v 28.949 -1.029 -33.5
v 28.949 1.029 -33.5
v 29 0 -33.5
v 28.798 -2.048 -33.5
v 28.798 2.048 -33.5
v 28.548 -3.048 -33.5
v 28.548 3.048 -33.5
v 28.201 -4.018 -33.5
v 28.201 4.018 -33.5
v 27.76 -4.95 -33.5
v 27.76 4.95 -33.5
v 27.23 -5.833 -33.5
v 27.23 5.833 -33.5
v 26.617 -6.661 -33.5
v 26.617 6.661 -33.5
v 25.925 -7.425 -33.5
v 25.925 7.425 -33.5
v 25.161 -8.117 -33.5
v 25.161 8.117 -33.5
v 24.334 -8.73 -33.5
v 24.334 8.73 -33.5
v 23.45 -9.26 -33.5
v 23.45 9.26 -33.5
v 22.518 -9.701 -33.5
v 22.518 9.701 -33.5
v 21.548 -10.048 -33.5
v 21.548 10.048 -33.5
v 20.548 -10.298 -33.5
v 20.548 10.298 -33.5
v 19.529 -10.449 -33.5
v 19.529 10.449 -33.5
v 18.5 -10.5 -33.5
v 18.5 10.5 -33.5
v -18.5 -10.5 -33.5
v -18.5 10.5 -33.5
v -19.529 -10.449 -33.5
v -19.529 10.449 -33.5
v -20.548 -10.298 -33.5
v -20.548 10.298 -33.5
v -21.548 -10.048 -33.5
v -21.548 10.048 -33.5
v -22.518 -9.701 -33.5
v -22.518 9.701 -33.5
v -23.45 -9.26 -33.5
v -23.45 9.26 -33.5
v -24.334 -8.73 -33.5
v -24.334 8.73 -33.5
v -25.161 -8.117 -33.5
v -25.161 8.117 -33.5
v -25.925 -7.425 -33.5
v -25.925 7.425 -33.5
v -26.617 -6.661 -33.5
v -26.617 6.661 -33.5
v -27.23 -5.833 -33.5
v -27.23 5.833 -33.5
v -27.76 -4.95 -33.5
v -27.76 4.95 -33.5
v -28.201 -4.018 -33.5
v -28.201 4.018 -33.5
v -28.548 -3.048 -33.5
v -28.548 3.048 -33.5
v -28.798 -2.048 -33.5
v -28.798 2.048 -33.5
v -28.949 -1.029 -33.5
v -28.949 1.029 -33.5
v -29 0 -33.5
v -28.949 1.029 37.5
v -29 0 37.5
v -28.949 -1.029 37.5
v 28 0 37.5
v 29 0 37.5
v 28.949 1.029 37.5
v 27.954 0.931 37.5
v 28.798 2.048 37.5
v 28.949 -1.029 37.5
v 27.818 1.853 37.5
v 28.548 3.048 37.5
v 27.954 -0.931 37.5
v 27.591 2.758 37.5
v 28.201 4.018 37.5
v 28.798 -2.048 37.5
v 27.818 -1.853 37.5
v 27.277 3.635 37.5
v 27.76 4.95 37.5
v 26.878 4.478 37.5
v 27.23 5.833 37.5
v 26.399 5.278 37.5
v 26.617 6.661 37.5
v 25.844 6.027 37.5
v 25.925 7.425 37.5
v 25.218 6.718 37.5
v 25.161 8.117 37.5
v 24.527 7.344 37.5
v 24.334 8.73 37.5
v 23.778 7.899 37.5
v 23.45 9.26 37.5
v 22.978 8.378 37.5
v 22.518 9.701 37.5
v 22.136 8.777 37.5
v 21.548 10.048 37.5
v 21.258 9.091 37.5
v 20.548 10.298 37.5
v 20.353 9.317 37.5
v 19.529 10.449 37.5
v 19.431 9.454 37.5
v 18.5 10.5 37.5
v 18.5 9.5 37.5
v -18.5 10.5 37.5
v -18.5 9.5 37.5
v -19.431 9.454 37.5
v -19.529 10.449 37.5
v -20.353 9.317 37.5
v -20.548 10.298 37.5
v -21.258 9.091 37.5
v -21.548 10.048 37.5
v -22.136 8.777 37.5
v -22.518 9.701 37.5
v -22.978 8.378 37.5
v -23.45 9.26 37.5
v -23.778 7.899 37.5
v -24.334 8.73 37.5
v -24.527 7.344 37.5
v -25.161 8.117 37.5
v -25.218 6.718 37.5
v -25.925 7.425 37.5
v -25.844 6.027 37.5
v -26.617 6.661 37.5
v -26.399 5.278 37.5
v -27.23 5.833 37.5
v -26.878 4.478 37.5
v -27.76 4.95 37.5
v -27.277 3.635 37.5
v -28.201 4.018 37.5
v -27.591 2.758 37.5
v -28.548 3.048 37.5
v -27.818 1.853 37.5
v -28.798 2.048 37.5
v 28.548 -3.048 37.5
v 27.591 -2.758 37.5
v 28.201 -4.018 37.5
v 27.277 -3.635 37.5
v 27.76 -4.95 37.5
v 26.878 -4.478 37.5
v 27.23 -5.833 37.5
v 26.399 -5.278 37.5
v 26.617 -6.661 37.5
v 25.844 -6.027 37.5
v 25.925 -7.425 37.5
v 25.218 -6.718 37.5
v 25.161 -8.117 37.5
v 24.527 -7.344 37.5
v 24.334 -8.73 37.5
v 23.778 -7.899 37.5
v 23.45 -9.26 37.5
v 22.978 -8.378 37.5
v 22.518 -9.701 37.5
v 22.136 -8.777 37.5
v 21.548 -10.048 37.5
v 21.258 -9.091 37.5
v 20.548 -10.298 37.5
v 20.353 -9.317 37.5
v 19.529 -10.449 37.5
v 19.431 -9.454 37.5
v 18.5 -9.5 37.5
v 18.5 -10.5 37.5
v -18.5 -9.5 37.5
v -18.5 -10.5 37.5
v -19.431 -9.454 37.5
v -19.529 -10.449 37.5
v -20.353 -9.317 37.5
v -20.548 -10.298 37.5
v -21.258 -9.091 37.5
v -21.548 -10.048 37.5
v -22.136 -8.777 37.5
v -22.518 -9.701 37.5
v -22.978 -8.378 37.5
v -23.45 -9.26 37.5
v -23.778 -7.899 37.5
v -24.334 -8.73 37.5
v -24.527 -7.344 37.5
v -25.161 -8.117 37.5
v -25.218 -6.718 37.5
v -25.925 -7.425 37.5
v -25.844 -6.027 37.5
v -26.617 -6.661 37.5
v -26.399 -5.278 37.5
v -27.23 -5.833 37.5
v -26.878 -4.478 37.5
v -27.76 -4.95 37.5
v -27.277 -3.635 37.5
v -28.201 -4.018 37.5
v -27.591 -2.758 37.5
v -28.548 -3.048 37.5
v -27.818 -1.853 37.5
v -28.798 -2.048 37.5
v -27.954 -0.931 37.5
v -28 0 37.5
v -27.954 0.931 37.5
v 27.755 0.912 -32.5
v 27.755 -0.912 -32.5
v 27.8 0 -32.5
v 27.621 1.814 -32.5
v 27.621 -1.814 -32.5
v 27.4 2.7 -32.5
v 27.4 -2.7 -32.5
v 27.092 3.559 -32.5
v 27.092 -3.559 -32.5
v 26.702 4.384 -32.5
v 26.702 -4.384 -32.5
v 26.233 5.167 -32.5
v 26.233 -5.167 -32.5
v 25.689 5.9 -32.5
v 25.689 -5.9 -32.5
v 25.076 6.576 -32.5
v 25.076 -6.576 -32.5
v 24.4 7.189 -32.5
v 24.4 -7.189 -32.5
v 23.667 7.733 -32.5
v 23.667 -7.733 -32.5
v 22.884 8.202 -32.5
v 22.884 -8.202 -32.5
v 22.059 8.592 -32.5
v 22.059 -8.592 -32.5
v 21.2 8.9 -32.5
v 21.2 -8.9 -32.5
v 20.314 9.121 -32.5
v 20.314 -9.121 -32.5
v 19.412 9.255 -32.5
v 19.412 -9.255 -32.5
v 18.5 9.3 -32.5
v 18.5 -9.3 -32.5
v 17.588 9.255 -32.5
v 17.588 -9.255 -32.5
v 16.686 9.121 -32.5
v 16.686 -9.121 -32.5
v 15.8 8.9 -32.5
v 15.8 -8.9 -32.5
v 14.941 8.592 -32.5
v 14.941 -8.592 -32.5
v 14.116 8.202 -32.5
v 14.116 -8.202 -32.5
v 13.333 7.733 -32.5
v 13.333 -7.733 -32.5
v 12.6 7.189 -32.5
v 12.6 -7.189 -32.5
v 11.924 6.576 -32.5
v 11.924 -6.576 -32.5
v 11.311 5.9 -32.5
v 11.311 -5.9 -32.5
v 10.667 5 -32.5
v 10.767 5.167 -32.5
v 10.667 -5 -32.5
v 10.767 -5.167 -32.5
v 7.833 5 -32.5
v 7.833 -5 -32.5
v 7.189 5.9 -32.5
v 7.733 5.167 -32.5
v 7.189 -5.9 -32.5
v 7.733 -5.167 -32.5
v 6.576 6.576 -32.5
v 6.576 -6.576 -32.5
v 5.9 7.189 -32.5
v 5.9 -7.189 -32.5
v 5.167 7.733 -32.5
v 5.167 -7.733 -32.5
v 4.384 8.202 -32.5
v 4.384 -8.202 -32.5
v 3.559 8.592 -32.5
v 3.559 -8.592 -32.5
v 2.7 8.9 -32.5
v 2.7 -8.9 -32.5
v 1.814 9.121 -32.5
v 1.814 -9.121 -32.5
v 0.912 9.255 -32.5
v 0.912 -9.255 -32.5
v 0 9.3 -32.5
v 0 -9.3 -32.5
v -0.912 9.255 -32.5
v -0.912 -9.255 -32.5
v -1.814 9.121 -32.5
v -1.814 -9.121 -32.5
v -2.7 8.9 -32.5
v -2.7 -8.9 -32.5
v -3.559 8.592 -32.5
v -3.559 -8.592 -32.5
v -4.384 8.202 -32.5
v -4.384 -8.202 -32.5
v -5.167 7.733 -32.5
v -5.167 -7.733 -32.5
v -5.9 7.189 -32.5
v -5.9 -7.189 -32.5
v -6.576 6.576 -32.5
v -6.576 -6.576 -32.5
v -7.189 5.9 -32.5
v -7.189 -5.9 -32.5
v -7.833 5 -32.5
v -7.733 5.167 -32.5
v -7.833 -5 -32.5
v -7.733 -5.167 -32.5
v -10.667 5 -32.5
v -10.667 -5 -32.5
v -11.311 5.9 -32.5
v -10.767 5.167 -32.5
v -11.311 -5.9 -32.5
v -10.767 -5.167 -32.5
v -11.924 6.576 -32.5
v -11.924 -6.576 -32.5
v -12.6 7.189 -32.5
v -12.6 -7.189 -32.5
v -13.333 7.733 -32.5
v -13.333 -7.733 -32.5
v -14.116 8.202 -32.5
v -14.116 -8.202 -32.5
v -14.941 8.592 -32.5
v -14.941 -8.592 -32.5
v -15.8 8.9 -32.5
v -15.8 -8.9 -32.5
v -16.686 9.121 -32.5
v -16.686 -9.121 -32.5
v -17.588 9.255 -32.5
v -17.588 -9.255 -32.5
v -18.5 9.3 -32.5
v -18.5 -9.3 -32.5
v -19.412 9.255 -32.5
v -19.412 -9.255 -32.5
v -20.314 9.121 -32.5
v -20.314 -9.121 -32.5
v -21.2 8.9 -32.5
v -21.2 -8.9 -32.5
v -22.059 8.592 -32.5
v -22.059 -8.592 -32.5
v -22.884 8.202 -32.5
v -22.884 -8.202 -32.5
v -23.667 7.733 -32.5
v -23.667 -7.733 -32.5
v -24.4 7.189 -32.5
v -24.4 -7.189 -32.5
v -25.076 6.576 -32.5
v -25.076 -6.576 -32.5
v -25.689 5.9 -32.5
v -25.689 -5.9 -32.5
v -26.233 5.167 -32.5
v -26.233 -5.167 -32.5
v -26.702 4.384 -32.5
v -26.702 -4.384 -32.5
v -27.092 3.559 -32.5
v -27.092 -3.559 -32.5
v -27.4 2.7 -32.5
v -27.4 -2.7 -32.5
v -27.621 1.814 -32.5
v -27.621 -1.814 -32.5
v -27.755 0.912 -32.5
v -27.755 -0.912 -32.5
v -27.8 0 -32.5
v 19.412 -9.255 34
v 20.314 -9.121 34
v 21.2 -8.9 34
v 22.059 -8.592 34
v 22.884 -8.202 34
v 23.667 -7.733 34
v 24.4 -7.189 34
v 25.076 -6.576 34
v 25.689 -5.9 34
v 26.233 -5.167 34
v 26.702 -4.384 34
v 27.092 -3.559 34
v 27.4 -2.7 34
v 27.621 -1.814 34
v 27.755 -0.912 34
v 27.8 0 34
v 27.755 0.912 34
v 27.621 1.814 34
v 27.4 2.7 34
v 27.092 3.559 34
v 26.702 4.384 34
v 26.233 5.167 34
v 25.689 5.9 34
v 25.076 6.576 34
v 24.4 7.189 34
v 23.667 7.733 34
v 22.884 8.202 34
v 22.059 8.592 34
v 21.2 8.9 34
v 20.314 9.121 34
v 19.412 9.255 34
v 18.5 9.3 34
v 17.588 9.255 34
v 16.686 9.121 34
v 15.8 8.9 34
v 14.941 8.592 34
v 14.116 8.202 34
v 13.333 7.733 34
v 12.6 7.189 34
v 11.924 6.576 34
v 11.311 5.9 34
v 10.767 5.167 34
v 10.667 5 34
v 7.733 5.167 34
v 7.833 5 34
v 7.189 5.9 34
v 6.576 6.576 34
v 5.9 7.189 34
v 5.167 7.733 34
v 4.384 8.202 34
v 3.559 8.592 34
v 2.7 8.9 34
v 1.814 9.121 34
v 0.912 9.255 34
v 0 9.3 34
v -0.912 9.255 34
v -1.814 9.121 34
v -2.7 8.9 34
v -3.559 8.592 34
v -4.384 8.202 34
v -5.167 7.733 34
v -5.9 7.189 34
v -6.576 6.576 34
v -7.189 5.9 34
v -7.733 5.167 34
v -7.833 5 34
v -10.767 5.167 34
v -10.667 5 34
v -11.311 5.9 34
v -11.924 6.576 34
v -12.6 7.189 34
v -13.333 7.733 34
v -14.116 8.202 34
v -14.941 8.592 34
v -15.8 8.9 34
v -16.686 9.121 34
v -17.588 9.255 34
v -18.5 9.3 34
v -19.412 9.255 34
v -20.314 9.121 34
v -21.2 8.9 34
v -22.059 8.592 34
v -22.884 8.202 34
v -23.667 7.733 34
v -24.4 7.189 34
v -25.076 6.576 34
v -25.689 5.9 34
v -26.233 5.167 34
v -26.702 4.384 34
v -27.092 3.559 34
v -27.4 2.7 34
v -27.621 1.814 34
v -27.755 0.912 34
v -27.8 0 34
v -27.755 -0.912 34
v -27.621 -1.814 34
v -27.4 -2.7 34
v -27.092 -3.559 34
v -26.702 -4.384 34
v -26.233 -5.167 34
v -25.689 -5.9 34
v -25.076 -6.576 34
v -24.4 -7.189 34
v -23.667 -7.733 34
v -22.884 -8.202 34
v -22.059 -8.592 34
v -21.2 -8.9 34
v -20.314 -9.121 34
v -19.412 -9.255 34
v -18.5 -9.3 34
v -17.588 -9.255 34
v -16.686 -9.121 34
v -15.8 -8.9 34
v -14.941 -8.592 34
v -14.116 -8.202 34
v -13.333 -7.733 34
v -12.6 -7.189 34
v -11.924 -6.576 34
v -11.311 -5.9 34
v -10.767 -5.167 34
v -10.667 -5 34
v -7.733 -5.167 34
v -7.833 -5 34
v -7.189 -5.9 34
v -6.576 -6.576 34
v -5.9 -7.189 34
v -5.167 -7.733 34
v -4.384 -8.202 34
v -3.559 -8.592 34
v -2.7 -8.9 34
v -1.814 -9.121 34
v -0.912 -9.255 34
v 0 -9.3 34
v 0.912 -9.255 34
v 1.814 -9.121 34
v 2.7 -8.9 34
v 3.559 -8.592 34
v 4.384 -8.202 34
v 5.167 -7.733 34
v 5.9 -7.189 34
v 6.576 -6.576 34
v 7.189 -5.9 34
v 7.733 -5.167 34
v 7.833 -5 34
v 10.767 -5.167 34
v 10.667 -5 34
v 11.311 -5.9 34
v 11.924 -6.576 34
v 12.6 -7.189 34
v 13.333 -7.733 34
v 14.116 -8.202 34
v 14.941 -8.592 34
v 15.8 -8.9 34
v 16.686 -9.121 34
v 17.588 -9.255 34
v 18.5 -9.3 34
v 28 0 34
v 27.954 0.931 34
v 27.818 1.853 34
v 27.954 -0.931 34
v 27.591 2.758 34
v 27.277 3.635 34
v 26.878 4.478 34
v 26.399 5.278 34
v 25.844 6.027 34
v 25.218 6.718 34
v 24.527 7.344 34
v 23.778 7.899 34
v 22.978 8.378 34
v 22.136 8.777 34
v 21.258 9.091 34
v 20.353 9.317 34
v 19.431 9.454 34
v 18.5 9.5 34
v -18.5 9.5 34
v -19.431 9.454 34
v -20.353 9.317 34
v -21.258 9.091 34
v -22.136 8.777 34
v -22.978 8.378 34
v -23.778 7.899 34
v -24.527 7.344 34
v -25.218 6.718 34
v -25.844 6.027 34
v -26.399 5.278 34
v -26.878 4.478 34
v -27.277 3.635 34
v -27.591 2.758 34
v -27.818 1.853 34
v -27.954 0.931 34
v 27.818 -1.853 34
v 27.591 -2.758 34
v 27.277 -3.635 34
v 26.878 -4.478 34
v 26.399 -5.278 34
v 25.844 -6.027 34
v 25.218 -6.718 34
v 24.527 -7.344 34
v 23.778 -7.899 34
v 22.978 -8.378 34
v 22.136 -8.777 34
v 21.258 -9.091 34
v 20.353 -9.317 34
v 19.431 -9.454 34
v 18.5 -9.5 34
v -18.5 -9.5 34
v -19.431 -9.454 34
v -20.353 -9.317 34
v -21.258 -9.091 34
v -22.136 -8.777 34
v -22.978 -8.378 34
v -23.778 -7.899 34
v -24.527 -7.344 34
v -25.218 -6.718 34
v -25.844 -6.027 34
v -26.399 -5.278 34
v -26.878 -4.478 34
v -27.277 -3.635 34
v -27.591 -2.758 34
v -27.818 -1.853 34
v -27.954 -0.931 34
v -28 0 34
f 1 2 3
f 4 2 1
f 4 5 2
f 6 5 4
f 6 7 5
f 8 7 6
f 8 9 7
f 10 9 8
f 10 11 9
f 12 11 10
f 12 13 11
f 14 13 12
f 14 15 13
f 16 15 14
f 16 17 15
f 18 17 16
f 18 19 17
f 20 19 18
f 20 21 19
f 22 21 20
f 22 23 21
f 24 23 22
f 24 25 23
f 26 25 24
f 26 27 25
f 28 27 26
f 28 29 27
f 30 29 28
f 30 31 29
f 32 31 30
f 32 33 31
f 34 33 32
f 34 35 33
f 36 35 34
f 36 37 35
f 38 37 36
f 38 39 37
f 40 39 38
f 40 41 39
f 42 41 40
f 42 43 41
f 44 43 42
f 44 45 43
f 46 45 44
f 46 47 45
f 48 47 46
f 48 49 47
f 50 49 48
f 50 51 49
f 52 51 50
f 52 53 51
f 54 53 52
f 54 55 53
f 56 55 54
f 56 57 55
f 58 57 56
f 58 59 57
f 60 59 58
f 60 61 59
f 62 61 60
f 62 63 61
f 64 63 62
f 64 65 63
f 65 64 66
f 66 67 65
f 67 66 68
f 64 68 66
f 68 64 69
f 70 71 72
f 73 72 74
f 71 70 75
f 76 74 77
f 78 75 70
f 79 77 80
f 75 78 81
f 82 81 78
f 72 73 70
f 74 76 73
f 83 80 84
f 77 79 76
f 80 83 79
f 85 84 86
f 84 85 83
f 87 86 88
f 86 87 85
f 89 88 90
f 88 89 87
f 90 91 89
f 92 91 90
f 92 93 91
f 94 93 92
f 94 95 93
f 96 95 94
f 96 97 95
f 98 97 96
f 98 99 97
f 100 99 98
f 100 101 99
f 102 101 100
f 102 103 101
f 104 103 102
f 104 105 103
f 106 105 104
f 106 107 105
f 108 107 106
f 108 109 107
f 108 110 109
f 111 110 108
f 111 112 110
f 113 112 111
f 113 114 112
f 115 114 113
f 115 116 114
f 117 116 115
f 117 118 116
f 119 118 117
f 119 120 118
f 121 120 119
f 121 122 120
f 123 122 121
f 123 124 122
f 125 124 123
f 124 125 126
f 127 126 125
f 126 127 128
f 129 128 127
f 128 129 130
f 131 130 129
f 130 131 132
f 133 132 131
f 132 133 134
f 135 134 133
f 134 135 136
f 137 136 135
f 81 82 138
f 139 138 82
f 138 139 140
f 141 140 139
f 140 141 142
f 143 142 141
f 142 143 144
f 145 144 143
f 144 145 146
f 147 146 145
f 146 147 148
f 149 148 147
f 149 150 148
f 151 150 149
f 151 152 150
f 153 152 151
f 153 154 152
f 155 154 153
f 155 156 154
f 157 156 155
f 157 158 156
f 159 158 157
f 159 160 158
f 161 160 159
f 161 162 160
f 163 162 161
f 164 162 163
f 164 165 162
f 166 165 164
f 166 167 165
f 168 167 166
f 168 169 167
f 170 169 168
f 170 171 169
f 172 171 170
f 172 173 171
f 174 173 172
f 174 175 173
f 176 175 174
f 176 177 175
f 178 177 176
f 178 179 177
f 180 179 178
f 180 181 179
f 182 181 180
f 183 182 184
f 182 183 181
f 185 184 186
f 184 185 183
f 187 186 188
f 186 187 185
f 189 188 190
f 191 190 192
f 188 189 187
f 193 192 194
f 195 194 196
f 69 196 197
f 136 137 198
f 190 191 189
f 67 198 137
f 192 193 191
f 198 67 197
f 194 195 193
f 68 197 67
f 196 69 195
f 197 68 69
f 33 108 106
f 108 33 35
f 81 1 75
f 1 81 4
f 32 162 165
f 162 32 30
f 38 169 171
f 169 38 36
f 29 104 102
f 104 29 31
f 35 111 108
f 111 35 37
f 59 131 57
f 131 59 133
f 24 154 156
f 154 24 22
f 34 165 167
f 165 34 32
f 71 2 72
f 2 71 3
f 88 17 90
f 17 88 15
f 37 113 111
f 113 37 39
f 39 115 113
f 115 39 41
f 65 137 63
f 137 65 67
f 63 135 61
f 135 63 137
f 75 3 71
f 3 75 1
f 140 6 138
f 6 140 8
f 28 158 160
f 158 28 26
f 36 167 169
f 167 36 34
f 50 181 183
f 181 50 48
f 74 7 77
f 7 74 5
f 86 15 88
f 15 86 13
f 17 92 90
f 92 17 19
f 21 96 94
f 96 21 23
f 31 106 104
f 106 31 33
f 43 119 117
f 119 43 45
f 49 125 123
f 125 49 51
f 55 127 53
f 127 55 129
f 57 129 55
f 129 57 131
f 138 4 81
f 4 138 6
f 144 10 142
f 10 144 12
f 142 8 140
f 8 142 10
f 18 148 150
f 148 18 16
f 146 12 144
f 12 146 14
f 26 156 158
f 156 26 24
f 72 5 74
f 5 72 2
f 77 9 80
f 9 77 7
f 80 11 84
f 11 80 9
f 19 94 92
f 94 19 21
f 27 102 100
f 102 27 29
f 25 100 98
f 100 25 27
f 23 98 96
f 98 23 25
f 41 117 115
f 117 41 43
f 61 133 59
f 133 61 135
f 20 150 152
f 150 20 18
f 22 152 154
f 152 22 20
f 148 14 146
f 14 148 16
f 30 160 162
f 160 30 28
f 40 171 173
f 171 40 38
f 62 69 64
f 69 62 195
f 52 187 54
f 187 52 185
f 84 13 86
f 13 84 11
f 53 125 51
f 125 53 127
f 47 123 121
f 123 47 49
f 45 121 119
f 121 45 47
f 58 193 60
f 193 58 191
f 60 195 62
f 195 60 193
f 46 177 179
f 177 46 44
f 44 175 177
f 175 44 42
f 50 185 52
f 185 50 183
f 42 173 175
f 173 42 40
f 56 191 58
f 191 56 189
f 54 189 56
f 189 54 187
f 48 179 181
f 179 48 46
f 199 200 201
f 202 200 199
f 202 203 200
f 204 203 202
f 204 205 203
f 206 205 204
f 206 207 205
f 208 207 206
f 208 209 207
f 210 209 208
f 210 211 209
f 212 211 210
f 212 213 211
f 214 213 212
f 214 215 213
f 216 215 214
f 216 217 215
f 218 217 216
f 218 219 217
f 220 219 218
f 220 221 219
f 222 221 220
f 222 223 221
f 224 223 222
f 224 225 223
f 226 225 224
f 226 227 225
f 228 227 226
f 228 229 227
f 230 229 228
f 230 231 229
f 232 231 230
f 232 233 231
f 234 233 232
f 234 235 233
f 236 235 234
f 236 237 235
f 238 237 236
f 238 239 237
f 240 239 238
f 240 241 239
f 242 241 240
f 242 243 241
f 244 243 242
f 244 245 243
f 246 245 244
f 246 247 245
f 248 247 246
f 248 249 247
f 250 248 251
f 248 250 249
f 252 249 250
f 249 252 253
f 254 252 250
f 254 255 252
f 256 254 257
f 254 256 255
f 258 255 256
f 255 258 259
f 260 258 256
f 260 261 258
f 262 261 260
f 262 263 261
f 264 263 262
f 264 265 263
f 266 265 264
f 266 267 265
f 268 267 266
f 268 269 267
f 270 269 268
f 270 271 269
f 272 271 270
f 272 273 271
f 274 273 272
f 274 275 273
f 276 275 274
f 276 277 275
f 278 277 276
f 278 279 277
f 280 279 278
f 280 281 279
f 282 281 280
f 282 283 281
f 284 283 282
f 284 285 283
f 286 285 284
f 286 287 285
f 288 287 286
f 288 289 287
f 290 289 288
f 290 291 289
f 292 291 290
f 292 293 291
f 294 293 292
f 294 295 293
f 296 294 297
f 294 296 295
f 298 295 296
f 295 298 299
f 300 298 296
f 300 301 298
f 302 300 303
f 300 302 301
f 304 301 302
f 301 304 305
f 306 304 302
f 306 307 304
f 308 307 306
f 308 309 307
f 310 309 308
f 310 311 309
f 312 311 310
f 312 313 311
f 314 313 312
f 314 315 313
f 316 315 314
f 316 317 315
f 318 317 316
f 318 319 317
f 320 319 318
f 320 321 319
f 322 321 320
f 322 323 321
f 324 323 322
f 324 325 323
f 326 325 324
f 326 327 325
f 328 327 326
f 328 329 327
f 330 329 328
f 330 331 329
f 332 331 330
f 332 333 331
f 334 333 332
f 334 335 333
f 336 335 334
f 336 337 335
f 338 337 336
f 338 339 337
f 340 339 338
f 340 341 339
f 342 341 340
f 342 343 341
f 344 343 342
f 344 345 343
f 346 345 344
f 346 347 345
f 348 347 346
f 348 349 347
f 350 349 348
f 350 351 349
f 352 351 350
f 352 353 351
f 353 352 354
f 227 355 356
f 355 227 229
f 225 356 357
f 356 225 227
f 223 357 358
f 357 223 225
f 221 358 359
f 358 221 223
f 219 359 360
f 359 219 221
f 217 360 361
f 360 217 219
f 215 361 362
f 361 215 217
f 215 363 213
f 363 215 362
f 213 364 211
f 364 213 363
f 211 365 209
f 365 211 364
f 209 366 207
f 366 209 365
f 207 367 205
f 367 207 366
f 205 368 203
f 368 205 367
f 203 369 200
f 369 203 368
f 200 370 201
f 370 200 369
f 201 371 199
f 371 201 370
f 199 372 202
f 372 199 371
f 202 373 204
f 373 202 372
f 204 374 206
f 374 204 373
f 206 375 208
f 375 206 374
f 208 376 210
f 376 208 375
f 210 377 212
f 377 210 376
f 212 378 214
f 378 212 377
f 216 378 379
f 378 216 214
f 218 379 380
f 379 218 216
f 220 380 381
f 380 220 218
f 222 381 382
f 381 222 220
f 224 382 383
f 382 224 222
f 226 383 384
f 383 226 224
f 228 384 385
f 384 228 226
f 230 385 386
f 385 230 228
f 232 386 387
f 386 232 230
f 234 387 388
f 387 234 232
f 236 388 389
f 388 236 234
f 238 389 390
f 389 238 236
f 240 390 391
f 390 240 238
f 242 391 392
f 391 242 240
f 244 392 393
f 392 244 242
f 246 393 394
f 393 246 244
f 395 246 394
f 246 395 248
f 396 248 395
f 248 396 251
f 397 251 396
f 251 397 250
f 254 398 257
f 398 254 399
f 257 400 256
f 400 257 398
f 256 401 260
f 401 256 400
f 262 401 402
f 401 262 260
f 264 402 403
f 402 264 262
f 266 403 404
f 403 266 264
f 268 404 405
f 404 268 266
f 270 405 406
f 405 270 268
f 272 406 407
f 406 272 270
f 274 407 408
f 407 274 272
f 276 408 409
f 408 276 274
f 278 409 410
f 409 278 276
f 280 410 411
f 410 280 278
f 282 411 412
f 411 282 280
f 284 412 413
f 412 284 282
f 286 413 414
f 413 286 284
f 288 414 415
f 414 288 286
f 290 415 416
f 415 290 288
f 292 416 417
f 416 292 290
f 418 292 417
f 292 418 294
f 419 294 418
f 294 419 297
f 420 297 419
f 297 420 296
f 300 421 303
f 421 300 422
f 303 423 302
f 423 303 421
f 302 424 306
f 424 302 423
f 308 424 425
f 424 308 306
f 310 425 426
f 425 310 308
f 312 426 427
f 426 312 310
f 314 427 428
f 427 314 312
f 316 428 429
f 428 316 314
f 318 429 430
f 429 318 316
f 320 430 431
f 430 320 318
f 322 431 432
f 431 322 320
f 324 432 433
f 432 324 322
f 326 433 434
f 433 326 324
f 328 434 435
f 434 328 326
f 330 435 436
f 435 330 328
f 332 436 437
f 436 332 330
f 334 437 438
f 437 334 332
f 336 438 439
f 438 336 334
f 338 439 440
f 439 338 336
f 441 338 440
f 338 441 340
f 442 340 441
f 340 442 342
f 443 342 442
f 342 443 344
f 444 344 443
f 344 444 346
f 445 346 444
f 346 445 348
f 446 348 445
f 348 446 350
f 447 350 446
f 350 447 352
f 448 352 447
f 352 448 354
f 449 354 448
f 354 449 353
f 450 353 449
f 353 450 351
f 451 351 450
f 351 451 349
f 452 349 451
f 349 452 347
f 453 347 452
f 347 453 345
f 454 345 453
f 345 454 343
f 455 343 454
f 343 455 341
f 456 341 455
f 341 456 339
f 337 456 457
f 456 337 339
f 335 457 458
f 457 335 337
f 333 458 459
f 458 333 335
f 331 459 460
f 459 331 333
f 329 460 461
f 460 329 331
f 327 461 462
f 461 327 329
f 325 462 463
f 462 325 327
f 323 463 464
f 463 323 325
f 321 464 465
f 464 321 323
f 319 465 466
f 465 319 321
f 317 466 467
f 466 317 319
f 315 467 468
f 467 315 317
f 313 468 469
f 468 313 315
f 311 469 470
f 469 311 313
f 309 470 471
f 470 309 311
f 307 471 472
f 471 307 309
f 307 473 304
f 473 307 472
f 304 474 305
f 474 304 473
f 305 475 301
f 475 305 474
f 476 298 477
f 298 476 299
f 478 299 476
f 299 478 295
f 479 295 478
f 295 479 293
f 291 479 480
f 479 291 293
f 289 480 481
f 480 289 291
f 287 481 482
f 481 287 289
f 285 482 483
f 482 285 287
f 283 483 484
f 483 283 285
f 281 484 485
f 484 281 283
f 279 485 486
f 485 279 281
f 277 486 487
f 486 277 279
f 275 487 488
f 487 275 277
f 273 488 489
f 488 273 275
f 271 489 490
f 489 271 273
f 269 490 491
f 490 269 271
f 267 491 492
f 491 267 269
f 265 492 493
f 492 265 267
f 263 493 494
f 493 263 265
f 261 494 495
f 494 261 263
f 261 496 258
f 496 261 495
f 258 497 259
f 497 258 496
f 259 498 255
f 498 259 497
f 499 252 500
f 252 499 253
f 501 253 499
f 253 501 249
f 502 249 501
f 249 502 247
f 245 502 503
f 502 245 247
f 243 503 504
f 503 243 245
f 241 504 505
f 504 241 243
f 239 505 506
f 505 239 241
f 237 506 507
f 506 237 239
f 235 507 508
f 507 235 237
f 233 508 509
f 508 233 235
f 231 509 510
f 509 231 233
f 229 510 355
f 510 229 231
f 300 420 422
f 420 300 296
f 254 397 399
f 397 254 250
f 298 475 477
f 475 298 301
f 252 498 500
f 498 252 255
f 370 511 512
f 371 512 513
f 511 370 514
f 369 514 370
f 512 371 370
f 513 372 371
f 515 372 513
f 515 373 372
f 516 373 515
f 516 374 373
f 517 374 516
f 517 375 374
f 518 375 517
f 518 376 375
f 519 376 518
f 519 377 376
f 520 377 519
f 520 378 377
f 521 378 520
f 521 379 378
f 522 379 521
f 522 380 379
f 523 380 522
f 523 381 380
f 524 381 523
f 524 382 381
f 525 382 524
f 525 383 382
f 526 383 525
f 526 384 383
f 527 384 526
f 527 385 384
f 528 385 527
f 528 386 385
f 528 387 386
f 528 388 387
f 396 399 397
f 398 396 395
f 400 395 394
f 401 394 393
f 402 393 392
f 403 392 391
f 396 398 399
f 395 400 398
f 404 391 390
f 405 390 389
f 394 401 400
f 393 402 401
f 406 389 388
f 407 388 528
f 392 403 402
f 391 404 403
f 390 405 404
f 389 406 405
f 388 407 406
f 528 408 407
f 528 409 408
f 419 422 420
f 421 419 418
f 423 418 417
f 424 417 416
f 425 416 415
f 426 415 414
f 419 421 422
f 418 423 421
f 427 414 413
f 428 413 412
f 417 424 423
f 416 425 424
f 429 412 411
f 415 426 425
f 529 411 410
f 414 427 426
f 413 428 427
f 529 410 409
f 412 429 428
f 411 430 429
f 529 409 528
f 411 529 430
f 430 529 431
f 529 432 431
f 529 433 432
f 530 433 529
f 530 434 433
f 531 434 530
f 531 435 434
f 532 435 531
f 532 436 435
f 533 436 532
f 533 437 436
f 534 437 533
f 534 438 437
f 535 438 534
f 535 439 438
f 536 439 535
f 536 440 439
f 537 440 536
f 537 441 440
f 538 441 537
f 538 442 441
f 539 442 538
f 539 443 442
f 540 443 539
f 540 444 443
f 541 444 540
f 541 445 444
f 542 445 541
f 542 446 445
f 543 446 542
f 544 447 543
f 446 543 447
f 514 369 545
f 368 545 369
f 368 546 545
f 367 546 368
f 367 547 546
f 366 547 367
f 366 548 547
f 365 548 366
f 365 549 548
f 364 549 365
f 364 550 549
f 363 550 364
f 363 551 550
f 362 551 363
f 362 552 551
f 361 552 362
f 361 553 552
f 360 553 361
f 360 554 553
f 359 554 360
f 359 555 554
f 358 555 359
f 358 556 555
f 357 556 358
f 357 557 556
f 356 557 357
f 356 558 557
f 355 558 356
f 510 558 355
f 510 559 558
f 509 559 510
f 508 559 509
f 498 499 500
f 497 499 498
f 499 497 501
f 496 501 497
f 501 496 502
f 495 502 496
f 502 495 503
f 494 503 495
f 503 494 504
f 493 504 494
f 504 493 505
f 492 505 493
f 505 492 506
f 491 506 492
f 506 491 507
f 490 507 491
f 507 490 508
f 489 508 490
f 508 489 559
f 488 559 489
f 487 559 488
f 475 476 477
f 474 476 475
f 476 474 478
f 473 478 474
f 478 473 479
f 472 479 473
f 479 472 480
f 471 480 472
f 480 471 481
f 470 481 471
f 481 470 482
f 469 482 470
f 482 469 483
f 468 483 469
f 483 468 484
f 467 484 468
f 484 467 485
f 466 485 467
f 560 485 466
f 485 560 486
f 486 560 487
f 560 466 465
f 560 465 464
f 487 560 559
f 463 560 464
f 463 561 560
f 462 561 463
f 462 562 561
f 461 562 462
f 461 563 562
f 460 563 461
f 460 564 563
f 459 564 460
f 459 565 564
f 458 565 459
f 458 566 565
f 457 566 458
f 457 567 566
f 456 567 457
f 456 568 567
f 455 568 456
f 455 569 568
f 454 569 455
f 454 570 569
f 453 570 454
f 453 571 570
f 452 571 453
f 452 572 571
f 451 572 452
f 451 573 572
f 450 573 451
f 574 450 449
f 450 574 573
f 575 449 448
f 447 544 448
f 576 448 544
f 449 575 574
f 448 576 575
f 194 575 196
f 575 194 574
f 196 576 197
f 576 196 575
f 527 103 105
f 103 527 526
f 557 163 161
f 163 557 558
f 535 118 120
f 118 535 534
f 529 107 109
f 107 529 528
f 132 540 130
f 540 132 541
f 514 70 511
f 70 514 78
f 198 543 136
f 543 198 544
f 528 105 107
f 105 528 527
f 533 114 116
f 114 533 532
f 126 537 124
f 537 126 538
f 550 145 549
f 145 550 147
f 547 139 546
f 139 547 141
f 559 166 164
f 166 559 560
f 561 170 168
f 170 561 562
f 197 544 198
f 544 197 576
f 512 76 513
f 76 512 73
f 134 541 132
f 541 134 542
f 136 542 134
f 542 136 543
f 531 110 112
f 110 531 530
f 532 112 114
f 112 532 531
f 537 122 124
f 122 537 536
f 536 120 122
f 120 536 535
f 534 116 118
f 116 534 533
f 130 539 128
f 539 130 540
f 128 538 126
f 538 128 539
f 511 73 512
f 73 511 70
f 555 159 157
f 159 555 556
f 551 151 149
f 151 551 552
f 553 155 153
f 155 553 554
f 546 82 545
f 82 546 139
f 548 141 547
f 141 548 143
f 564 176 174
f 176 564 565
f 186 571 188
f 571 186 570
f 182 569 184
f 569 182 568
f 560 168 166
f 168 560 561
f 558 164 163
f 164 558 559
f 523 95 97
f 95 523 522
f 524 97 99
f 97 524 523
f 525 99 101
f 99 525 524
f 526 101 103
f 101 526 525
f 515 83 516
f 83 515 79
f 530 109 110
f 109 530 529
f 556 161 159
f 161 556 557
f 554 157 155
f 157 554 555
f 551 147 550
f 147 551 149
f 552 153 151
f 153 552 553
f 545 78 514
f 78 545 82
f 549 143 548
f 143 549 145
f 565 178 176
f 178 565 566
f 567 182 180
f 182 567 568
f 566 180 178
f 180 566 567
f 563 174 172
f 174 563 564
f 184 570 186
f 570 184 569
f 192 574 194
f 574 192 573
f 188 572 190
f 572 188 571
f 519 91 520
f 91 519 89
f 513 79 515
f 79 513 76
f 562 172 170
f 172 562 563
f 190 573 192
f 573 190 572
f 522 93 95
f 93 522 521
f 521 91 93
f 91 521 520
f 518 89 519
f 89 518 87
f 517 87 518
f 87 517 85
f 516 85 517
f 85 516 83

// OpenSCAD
// file: library.scad
// Аккумулятор 18650

module akk18650() {
  cylinder(d=18.4, h=65, center=true);
  
}
// main file
include <library.scad>

$fn = 64;

if(false) {

  akk18650();
  translate([ 18.5, 0, 0]) akk18650();
  translate([-18.5, 0, 0]) akk18650();
  
  // Магниты
  translate([ 33, -5, 0]) cube([8,8,55], center=true);
  translate([ 33, -5, 0]) cube([8,8,55], center=true);
  
}


// Корпус

if(true) {

w_t = 1.0;  // Толщина стенки корпуса.

difference() {

  translate([0, 0, 2])
  linear_extrude(height = 71.0, center=true) {
    hull() {
      translate([ 18.5, 0, 0]) circle(d = 19 + 2*w_t);
      translate([-18.5, 0, 0]) circle(d = 19 + 2*w_t);
    }
  }

  translate([0, 0, 5]) linear_extrude(height = 75.0, center=true) {
    translate([ 18.5, 0, 0]) circle(d = 18.6);
    translate([    0, 0, 0]) circle(d = 18.6);
    translate([-18.5, 0, 0]) circle(d = 18.6);
  }
  translate([0, 0, 5]) cube([30,10,75], center=true);
  
  translate([0, 0, 38]) linear_extrude(height = 8.0, center=true) {
    hull() {
      translate([ 18.5, 0, 0]) circle(d = 19);
      translate([-18.5, 0, 0]) circle(d = 19);
    }
  }

  /*translate([0,50,0]) cube([100,100,100], center=true);*/

}


}
